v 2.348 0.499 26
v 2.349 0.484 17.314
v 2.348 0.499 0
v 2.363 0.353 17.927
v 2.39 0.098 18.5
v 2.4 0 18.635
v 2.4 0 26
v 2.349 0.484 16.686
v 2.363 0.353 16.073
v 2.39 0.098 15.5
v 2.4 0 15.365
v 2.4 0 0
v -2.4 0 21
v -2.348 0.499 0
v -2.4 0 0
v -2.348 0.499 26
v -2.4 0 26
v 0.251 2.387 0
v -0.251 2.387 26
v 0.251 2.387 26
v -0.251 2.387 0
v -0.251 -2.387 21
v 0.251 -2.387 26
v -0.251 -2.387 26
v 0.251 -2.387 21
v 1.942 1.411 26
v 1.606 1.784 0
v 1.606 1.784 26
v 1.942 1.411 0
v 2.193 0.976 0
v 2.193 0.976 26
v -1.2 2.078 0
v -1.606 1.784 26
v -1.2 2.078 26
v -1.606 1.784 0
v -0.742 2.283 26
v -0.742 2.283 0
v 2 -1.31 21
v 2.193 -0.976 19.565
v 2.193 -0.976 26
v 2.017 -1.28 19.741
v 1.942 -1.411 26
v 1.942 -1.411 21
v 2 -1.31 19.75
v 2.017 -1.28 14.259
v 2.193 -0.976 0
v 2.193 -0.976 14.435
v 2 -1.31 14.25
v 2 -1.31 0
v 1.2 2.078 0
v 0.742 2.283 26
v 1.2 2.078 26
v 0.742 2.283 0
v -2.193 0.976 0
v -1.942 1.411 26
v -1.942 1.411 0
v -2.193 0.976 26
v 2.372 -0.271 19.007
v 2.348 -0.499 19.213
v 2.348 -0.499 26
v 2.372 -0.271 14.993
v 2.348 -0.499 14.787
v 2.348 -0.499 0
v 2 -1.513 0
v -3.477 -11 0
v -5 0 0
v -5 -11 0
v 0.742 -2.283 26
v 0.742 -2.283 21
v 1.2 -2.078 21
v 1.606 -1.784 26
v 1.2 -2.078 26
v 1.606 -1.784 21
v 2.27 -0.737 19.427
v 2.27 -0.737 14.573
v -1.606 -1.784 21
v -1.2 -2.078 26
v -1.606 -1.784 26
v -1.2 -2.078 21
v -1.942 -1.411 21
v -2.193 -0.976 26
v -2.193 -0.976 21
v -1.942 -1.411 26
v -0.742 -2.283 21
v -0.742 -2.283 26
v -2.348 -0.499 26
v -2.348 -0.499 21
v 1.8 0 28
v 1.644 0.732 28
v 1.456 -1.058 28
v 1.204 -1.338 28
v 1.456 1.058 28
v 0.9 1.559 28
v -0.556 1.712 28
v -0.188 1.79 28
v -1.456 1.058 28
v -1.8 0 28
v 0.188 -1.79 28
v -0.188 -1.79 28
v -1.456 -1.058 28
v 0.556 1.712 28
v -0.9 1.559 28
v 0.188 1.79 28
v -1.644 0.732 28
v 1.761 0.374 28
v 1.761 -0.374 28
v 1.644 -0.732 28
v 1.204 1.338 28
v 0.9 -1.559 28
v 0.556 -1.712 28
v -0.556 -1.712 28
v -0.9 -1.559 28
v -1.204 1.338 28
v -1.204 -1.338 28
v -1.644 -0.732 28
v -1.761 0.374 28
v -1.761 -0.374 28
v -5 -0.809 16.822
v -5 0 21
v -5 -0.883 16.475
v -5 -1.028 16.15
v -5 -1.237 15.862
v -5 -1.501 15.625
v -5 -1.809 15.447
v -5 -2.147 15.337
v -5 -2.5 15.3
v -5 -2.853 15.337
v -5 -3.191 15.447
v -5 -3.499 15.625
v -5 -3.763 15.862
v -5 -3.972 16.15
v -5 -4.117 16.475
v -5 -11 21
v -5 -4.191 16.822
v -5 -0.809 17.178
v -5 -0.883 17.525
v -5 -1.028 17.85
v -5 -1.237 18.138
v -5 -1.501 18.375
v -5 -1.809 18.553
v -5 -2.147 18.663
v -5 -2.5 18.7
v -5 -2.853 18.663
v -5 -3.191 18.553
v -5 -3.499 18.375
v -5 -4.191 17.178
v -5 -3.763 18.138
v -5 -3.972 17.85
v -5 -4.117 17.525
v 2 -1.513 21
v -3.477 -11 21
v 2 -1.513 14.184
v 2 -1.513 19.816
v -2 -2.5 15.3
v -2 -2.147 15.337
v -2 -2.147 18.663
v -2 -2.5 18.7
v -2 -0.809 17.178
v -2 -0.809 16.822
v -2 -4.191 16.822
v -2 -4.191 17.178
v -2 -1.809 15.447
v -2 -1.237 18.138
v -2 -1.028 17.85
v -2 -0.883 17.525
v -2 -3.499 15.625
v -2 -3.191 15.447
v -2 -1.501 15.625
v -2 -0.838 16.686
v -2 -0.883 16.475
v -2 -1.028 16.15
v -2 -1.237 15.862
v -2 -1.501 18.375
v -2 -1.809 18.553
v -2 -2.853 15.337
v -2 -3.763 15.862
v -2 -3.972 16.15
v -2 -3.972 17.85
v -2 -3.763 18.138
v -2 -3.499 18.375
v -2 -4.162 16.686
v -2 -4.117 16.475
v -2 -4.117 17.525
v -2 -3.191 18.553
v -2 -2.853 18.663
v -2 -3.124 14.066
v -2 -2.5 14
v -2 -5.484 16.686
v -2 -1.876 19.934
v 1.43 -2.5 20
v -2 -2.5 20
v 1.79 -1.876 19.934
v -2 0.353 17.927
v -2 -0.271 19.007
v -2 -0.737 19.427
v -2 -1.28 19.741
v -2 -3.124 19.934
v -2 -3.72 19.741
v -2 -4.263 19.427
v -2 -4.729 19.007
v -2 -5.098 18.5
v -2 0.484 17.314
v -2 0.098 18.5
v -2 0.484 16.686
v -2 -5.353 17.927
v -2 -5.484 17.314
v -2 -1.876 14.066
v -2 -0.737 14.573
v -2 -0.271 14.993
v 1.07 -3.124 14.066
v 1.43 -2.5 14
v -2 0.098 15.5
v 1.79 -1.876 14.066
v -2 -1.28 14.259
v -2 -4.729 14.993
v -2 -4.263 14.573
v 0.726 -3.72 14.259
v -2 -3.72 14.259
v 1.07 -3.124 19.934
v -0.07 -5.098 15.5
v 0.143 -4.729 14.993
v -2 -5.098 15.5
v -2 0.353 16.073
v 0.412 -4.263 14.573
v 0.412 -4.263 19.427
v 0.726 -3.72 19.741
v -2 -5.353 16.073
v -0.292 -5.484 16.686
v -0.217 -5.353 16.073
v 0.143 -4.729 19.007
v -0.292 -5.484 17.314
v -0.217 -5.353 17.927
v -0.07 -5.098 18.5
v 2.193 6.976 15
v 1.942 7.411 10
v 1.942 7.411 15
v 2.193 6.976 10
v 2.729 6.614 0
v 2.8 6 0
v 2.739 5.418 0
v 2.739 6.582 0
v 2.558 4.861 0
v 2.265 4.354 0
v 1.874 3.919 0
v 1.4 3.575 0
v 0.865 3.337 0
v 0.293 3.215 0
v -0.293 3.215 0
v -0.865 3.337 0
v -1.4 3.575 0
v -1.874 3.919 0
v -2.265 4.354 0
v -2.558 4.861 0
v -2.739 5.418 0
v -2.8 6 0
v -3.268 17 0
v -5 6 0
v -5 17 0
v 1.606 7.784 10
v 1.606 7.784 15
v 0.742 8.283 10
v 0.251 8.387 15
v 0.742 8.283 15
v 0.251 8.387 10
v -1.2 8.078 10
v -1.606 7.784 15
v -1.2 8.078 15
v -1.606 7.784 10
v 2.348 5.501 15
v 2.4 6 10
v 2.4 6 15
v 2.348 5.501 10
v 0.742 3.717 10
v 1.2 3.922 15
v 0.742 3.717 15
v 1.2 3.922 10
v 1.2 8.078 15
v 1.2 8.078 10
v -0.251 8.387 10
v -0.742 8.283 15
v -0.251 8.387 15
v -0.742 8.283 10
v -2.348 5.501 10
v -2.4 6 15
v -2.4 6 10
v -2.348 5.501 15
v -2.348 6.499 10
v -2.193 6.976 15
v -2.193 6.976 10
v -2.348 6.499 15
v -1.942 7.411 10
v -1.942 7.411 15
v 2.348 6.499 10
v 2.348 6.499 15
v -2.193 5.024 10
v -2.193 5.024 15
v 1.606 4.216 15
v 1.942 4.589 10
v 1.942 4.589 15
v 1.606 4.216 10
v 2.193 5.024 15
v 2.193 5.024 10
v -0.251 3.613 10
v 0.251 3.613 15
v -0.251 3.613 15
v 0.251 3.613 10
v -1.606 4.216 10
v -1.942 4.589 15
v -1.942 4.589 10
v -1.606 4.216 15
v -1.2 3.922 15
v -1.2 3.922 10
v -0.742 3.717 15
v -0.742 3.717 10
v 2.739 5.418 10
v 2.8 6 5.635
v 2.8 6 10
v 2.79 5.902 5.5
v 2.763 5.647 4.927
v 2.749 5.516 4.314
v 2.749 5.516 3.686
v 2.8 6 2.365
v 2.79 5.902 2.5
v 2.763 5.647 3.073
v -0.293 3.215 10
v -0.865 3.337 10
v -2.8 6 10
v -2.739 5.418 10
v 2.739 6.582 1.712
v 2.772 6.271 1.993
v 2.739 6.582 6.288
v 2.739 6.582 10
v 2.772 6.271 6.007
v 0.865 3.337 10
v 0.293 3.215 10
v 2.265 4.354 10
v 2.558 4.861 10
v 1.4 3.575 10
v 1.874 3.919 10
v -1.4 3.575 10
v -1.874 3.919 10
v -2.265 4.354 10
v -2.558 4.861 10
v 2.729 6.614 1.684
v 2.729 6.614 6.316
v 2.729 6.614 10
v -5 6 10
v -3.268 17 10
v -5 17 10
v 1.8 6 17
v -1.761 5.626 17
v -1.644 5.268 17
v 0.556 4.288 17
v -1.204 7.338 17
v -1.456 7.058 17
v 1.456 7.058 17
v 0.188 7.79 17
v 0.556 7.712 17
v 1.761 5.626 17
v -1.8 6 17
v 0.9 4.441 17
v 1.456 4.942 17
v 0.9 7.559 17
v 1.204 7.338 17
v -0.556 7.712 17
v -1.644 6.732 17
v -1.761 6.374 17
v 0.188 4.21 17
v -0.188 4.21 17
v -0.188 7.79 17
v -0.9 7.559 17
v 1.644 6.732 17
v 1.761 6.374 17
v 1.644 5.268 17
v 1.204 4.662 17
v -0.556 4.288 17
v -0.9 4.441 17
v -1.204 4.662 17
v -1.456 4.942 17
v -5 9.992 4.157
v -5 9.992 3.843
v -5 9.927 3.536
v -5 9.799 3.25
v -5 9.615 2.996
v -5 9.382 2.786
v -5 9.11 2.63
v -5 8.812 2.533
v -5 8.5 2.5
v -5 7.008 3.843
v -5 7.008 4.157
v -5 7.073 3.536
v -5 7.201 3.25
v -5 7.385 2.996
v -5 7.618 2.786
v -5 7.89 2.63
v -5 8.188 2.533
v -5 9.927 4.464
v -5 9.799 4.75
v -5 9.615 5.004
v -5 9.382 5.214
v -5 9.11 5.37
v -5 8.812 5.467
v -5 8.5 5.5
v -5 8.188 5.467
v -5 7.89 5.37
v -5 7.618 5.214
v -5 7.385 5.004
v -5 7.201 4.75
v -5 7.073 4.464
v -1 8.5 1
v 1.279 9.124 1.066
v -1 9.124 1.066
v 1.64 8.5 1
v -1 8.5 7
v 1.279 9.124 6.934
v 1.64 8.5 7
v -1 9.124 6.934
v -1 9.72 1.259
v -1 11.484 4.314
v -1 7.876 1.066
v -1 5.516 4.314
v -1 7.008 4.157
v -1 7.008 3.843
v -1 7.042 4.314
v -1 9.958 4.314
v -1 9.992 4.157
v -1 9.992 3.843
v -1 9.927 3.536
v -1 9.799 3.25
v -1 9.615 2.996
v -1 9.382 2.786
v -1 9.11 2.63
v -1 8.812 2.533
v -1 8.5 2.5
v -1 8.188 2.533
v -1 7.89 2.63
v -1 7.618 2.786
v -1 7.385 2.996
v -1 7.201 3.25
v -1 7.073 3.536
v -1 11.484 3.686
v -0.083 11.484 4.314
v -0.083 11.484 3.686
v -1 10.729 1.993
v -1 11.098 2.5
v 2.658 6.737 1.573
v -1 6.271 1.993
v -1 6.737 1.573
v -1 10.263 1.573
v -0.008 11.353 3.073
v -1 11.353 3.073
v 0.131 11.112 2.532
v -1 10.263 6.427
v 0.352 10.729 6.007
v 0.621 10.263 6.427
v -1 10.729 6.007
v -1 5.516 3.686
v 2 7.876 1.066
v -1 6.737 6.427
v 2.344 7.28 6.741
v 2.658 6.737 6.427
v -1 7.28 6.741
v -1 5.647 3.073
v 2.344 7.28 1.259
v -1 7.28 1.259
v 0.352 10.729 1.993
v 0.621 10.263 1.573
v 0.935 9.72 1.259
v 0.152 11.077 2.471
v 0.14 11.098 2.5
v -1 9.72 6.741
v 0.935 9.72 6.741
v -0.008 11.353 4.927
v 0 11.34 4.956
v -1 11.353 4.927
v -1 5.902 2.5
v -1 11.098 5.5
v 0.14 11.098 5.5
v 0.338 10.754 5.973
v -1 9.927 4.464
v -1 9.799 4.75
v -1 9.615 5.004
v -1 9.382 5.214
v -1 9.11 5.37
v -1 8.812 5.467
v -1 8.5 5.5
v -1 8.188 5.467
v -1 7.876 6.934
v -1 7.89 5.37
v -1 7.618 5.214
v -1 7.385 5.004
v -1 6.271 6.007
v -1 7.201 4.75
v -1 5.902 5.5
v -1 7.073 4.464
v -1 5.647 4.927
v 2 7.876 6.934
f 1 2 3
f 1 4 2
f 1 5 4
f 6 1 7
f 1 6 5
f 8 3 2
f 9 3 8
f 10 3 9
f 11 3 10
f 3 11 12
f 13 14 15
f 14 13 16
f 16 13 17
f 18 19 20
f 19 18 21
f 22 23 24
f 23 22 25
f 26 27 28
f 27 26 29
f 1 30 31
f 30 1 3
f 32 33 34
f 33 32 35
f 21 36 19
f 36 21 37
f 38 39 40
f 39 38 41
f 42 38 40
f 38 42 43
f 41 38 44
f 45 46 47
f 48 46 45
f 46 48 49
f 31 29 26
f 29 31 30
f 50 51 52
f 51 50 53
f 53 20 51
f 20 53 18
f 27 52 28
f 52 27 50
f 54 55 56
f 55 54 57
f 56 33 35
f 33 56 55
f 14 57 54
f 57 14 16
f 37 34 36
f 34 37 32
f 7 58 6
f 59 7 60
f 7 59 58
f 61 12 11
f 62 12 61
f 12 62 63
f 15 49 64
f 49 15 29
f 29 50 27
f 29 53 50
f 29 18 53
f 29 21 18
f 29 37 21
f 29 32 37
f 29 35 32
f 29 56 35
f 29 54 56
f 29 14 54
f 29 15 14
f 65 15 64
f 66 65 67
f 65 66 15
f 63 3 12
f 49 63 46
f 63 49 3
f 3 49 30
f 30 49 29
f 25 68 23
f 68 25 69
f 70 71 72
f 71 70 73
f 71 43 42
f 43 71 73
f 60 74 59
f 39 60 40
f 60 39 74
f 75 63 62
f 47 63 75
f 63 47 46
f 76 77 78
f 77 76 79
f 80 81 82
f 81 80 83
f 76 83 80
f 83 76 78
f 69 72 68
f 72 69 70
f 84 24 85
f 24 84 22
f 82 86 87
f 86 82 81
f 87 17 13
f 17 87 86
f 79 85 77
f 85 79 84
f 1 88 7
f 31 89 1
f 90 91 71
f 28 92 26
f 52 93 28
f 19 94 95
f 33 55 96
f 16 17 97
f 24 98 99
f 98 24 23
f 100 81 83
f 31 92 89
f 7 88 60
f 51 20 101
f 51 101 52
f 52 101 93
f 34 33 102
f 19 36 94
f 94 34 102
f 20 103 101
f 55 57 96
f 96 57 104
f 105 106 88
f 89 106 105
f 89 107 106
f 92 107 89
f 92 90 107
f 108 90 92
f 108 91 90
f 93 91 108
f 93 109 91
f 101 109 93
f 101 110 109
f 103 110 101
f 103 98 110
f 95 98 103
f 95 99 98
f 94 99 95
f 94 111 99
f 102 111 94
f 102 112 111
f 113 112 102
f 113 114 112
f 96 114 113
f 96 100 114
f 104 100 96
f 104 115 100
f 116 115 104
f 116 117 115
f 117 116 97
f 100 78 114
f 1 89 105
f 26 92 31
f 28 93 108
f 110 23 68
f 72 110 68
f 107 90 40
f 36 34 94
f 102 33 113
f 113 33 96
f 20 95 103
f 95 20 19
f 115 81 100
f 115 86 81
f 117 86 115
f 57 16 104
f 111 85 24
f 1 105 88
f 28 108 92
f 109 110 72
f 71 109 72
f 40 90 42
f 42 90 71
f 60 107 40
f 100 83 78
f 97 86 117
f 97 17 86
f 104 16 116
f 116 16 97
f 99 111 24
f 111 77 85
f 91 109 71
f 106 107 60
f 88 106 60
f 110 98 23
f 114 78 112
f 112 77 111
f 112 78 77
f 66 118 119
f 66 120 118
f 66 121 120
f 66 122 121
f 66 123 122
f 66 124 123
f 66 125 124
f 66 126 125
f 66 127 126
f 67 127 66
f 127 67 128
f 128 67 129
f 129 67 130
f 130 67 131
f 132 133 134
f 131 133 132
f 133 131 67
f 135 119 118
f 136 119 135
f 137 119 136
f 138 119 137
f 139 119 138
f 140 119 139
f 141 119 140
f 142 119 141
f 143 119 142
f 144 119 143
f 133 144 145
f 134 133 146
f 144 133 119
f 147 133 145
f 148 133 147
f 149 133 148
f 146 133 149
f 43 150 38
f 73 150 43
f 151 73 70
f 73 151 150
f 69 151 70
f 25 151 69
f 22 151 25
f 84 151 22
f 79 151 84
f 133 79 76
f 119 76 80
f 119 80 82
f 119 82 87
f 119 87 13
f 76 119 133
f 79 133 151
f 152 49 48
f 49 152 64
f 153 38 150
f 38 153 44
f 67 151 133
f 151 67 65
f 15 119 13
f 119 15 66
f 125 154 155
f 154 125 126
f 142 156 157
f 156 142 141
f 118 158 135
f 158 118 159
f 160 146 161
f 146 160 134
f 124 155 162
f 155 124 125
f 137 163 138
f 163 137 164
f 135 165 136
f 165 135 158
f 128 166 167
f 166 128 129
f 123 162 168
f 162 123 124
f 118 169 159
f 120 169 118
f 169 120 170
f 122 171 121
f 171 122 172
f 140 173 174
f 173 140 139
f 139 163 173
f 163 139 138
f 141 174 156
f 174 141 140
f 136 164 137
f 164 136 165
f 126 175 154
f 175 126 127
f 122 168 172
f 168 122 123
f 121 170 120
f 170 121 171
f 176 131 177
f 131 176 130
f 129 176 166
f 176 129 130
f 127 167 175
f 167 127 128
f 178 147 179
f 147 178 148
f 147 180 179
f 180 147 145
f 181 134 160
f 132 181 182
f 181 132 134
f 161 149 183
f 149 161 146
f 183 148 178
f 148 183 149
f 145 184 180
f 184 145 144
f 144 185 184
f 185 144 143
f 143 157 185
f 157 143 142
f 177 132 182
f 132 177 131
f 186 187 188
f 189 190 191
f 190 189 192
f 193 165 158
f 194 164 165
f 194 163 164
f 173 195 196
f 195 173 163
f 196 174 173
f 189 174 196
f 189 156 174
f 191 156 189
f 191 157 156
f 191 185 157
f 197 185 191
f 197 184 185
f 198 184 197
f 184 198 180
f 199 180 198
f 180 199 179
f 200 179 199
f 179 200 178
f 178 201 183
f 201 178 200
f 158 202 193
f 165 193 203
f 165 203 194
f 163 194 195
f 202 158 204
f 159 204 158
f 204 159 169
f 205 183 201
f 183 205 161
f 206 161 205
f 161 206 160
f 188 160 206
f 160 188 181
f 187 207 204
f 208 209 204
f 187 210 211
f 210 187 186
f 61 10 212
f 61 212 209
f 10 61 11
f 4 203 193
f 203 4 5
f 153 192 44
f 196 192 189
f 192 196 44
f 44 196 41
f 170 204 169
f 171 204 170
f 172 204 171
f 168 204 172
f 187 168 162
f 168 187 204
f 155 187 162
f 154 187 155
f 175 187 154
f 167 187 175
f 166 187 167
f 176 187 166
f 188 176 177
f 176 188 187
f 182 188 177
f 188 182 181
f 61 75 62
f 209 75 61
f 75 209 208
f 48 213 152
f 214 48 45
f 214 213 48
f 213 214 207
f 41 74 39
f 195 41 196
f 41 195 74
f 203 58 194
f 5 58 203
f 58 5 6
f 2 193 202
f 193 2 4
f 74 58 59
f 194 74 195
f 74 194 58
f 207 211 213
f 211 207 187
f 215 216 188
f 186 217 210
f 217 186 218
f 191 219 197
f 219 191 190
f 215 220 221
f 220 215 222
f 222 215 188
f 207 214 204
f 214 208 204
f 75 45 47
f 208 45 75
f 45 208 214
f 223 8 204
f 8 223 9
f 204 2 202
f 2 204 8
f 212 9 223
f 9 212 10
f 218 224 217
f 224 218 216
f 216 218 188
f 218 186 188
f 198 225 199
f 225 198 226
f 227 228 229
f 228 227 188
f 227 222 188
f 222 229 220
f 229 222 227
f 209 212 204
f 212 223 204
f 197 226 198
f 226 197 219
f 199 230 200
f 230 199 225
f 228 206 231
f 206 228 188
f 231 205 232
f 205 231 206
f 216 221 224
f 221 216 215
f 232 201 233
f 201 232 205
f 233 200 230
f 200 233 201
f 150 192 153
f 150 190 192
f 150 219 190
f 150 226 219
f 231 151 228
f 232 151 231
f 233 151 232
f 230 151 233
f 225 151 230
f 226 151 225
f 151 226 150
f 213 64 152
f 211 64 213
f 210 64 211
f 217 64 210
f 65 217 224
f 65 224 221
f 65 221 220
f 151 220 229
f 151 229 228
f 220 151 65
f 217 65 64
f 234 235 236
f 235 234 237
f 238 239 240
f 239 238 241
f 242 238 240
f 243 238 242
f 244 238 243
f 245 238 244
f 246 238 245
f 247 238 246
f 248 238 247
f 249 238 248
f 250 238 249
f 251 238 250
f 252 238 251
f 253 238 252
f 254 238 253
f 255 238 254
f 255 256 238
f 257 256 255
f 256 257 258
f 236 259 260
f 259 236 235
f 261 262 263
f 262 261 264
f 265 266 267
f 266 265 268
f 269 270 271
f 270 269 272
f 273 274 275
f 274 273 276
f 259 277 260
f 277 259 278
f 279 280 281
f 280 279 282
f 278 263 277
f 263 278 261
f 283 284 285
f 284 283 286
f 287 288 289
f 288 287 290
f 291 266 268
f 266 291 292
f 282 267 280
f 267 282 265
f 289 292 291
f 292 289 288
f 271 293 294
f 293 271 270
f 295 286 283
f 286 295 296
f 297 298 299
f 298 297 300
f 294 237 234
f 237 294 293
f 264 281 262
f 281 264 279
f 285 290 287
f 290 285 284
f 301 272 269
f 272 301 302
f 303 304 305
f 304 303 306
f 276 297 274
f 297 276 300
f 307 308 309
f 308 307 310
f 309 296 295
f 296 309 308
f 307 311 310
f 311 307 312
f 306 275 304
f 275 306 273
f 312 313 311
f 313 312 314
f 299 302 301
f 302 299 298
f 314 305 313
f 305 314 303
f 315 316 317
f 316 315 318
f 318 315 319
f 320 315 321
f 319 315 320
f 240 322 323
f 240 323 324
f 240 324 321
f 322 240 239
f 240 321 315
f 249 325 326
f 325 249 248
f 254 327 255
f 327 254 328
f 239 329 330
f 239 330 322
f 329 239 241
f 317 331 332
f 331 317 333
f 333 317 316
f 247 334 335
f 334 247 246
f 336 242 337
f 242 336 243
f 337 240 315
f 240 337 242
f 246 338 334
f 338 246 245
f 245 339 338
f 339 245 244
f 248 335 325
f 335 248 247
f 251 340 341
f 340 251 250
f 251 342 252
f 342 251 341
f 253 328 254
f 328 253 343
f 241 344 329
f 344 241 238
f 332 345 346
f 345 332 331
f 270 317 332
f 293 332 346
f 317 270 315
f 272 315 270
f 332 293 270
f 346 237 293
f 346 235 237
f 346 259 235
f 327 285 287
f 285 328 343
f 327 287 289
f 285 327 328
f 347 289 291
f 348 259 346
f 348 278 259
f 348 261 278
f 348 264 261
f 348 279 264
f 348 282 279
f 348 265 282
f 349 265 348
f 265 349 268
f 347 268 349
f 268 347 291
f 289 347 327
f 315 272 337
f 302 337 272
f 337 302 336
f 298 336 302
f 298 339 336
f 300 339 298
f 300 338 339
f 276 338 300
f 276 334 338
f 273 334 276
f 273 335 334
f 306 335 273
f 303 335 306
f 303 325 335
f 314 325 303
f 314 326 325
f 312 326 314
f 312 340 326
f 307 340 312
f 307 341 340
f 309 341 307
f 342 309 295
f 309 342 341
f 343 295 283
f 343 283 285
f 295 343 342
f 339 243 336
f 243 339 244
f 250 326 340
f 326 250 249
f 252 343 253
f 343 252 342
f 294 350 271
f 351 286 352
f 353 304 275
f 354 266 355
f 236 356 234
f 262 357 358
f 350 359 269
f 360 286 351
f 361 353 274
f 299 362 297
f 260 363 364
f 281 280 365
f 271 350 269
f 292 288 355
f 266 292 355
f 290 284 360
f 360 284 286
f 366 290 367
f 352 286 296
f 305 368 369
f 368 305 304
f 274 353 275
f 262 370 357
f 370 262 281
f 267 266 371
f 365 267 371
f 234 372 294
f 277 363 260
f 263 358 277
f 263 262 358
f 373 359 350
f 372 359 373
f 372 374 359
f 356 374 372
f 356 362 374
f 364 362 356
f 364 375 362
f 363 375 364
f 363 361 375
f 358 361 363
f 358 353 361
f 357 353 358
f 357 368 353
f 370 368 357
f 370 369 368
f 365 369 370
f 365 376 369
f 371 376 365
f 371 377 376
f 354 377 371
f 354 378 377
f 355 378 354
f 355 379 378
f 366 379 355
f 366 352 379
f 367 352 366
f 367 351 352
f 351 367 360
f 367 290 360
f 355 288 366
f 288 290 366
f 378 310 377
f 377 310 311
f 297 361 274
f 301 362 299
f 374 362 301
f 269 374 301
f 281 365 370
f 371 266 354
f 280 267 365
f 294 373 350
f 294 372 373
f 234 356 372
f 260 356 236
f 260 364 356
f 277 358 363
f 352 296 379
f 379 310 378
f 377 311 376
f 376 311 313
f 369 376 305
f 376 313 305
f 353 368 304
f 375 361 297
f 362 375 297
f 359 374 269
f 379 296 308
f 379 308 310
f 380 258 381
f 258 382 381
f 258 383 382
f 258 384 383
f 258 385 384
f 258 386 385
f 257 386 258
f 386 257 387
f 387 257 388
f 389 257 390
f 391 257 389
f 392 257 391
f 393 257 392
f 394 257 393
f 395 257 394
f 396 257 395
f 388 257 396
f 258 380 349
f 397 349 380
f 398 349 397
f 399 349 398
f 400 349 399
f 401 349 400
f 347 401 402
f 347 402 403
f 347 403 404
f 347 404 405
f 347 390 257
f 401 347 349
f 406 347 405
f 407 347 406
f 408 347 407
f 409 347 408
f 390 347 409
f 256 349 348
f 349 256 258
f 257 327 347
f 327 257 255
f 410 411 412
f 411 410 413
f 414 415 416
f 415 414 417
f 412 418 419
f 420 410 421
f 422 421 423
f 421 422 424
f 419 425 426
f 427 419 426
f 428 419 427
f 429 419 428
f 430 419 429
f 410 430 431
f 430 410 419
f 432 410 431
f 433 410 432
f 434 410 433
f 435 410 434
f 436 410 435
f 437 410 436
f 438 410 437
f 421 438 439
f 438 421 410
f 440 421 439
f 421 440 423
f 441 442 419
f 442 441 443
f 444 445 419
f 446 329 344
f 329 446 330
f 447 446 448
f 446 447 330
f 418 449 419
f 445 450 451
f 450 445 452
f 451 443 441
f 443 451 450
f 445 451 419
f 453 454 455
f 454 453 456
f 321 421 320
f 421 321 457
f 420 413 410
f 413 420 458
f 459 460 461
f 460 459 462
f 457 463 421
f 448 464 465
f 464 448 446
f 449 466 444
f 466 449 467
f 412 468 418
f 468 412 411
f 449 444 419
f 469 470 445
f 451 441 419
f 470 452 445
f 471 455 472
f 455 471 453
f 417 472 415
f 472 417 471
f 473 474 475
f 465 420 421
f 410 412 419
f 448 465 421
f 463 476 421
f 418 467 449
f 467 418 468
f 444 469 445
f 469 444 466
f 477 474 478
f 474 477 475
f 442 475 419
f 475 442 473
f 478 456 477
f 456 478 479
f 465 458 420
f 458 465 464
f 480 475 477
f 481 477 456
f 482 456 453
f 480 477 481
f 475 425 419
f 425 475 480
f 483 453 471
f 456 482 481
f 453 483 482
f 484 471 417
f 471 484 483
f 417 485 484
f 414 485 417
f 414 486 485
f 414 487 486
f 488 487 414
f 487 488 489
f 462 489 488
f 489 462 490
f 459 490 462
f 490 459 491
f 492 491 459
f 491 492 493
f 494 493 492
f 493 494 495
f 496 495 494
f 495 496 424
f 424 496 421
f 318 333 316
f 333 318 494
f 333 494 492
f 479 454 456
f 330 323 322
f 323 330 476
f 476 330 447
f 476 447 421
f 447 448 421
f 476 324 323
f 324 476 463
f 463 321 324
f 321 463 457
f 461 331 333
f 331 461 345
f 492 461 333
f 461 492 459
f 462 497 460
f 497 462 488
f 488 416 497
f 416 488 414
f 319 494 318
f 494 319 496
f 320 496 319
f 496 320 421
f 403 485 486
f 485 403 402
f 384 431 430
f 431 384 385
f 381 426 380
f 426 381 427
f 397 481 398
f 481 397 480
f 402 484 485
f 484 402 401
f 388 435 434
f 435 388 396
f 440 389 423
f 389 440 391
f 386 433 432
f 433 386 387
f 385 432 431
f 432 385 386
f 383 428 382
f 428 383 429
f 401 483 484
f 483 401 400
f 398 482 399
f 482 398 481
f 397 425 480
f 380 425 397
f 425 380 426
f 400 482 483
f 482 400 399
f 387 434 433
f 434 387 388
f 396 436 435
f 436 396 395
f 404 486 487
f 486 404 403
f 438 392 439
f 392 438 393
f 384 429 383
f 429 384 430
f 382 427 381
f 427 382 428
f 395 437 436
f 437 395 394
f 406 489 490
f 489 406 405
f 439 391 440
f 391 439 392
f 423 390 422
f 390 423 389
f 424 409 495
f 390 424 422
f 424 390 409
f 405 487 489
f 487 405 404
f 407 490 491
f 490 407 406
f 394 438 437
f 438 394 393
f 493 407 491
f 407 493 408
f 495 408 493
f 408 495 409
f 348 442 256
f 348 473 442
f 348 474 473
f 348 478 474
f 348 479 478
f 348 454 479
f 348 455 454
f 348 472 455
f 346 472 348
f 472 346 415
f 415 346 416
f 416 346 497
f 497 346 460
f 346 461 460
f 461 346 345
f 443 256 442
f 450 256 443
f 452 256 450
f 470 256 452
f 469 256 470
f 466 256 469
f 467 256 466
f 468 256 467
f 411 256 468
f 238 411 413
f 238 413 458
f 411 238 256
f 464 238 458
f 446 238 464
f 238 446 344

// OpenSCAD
// PRUSA iteration3
// RAMBo cover hinges
// GNU GPL v3
// Josef Průša <iam@josefprusa.cz> and contributors
// http://www.reprap.org/wiki/Prusa_Mendel
// http://prusamendel.org

module upper_hinge()
{
difference()    
{
    union(){
     cylinder( h = 26, r = 2.4, $fn=30); 
     translate([0,0,26]) cylinder( h = 2, r1 = 2.4, r2 = 1.8, $fn=30); 
     translate( [ -5 , -11 , 0 ] ) cube( [ 7 , 11 , 21 ] );  
    }
     translate( [ -12.5 , -2.5 , 17 ] ) rotate( [0,90,0] ) cylinder( h = 20, r = 1.7, $fn=30);  
     translate( [ -2 , -2.5 , 17 ] ) rotate( [0,90,0] ) cylinder( h = 9, r = 3, $fn=30); 
     translate([-2.9,-20,-1]) rotate([0,0,60]) cube([25,5,26]);   
}
}

module lower_hinge()
{
difference()
{   
   union(){ 
    translate( [ 0 , 6 , 0 ] ) cylinder( h = 15, r = 2.4, $fn=30); 
    translate( [ 0 , 6 , 0 ] ) cylinder( h = 10, r = 2.8, $fn=30);  
    translate( [ 0 , 6 , 15 ] ) cylinder( h = 2, r1 = 2.4, r2=1.8, $fn=30);  
    translate( [ -5 , 6 , 0 ] ) cube( [ 7 , 11 , 10 ] ); 
   }
    translate( [ -1 , 8.5 , 4 ] ) rotate( [0,90,0] ) cylinder( h = 20, r = 3, $fn=30); 
    translate( [ -12 , 8.5 , 4 ] ) rotate( [0,90,0] ) cylinder( h = 20, r = 1.5, $fn=30); 
    translate([-5,20,-1]) rotate([0,0,-60]) cube([20,5,20]);   
}
}


upper_hinge();
lower_hinge();
